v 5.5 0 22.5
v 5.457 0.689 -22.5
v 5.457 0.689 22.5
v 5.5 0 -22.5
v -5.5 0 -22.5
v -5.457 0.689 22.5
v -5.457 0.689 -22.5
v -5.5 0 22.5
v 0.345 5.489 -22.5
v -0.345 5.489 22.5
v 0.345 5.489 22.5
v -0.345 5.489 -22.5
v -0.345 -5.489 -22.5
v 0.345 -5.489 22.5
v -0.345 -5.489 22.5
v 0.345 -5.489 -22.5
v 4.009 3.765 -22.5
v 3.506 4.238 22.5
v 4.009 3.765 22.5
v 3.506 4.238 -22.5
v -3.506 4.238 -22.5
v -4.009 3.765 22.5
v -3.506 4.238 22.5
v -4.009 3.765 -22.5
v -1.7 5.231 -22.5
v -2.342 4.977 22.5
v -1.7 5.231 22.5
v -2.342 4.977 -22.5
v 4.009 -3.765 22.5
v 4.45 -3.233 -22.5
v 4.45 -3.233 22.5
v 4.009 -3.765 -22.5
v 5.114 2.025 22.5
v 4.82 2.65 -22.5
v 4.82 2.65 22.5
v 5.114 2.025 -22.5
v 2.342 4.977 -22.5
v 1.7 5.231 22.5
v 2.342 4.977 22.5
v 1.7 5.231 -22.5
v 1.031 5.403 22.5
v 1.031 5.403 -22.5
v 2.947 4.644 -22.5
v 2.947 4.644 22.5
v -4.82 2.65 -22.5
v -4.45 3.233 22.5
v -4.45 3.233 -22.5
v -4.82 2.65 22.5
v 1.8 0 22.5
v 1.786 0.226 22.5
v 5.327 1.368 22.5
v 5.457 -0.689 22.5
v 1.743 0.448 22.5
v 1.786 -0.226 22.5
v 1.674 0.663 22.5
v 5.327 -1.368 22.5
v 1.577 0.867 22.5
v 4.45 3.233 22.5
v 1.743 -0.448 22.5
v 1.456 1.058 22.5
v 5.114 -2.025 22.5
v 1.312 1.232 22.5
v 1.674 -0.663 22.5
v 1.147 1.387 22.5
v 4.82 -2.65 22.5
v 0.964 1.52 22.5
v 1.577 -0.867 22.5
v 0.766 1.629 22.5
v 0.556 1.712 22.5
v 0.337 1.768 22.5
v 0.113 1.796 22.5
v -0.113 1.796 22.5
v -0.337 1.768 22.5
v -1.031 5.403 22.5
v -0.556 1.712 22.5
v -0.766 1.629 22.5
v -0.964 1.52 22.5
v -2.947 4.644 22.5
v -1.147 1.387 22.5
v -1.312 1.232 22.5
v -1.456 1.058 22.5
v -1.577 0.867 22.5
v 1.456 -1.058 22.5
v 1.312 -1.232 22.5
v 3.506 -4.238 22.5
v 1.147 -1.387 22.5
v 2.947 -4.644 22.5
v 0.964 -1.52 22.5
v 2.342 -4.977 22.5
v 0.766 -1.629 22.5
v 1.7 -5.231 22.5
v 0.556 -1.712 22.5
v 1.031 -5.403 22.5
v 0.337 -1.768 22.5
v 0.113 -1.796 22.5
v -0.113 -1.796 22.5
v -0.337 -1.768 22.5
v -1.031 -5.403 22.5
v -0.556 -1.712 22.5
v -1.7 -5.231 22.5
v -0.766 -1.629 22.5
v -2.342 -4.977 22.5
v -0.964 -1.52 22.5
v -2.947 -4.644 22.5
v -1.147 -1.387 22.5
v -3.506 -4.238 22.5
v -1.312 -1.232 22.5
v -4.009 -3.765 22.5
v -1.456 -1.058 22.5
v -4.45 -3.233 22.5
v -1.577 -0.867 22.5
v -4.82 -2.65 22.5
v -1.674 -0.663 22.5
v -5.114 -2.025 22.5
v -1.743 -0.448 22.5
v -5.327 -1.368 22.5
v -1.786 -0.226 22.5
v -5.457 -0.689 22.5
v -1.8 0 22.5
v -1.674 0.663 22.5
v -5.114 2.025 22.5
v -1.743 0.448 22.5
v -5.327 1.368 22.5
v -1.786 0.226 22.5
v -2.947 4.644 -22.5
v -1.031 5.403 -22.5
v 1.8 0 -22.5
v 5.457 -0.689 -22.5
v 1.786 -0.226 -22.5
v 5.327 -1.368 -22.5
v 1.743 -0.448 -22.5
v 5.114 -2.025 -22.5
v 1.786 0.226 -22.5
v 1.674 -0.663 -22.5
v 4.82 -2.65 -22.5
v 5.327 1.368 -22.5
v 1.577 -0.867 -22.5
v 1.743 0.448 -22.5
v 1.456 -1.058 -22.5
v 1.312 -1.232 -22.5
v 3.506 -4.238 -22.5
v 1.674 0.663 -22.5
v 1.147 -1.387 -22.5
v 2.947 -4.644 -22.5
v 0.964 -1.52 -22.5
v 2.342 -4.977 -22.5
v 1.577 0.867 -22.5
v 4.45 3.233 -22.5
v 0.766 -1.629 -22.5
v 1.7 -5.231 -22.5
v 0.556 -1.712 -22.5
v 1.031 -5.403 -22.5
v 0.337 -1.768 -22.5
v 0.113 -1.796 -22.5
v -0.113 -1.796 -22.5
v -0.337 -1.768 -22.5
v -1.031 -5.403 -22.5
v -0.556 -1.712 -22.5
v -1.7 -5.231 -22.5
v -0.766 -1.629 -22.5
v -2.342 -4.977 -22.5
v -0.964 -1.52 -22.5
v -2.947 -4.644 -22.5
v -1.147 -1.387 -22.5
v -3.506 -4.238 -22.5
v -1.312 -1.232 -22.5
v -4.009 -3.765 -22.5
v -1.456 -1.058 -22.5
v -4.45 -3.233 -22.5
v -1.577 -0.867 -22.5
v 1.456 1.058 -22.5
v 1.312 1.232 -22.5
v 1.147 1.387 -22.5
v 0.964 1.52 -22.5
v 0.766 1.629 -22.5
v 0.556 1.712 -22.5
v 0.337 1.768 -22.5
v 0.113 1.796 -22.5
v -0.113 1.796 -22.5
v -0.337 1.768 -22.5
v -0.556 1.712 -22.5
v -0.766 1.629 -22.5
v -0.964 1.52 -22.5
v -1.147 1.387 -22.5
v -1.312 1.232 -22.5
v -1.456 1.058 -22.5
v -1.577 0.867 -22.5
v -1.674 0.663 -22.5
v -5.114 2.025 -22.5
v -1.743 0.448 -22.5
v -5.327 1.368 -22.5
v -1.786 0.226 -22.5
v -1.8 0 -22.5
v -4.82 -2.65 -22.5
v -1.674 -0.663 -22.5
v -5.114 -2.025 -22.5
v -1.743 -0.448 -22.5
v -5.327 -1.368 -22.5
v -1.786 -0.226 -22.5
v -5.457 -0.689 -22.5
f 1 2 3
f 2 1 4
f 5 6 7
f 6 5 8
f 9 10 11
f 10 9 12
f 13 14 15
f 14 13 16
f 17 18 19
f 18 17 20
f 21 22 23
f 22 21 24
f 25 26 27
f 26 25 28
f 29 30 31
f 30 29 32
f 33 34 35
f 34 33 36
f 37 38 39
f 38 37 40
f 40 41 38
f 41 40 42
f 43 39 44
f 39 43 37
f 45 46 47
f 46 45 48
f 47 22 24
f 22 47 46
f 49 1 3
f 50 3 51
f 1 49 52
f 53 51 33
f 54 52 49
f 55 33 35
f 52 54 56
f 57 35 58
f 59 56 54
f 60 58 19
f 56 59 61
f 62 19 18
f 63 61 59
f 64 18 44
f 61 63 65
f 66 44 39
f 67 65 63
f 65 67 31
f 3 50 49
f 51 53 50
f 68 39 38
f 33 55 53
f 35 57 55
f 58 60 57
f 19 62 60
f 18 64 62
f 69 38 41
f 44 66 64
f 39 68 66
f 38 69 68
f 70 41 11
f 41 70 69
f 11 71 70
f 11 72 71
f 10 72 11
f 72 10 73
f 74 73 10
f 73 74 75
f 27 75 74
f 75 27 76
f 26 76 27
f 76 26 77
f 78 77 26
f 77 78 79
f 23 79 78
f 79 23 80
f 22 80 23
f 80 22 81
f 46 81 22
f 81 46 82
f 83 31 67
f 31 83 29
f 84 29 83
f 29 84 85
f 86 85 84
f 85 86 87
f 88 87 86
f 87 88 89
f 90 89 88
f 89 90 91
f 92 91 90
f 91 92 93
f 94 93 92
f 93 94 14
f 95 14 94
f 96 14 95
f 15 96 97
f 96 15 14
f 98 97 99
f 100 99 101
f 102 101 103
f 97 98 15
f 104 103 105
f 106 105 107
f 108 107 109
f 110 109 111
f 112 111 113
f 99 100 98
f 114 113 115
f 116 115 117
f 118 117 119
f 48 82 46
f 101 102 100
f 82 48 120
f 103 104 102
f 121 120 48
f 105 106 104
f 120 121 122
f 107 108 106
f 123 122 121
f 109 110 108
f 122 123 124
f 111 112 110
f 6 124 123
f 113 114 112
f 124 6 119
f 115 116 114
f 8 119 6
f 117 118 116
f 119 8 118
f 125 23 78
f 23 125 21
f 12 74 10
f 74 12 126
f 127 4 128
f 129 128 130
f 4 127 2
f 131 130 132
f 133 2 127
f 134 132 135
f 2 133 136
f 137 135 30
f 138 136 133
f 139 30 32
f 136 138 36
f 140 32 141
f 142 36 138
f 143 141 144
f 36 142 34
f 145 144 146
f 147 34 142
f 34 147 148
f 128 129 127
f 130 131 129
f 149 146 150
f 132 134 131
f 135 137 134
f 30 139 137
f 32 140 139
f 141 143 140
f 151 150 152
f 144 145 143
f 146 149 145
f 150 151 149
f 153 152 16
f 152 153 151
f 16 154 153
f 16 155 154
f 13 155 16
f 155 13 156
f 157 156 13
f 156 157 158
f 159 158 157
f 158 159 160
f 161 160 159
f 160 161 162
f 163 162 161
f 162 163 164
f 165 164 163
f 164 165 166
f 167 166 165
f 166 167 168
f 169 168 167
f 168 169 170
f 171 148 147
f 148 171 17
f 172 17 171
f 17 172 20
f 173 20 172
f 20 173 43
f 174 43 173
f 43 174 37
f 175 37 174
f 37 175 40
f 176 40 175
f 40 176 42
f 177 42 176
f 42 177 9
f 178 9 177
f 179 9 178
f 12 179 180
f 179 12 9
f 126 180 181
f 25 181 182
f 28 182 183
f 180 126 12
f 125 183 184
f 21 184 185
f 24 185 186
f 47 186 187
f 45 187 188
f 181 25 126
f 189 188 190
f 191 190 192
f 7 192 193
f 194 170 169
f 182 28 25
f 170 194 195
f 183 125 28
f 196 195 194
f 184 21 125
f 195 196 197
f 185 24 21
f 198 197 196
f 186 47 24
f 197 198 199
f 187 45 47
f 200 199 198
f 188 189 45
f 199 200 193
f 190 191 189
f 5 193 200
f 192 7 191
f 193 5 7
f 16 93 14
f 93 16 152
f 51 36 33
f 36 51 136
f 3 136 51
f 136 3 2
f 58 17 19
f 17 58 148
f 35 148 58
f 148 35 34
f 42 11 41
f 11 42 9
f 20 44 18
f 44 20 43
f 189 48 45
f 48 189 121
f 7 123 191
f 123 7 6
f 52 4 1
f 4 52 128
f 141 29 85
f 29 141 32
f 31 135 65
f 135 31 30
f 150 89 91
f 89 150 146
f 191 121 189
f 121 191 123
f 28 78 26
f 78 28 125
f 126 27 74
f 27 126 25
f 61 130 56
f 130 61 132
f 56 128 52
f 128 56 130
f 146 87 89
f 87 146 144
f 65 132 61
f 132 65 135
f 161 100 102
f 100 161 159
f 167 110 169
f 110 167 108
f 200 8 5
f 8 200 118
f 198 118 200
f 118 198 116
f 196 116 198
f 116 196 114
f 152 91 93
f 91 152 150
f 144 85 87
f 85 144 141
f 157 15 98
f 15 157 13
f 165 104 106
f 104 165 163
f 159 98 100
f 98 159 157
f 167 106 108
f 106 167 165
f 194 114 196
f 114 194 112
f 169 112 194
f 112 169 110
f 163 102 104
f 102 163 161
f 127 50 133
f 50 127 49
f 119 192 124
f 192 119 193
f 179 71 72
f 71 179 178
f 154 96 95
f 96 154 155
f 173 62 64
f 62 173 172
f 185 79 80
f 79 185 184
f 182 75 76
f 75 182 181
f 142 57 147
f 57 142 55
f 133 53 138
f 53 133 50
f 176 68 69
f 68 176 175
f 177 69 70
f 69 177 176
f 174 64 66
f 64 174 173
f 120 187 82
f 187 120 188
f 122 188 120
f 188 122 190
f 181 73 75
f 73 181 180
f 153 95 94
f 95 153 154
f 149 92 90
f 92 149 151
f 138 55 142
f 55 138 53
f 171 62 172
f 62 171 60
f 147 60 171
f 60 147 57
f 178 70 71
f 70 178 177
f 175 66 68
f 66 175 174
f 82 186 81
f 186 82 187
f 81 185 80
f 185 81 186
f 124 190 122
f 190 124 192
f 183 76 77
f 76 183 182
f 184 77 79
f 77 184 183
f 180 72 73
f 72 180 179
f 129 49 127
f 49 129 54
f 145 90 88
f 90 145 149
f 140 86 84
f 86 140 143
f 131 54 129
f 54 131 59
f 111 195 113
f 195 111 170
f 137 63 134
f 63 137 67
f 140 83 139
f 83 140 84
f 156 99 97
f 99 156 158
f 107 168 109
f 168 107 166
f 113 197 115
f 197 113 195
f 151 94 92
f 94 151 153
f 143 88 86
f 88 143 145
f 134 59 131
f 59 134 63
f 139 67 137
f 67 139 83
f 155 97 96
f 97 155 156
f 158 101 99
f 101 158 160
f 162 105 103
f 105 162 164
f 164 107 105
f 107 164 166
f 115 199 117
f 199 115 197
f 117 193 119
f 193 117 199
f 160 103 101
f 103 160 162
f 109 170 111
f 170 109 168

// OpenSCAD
$fn = 50;


difference() {
	union() {
		translate(v = [0, 0, -22.5000000000]) {
			cylinder(h = 45, r = 5.5000000000);
		}
	}
	union() {
		translate(v = [0, 0, -100.0000000000]) {
			cylinder(h = 200, r = 1.8000000000);
		}
	}
}
